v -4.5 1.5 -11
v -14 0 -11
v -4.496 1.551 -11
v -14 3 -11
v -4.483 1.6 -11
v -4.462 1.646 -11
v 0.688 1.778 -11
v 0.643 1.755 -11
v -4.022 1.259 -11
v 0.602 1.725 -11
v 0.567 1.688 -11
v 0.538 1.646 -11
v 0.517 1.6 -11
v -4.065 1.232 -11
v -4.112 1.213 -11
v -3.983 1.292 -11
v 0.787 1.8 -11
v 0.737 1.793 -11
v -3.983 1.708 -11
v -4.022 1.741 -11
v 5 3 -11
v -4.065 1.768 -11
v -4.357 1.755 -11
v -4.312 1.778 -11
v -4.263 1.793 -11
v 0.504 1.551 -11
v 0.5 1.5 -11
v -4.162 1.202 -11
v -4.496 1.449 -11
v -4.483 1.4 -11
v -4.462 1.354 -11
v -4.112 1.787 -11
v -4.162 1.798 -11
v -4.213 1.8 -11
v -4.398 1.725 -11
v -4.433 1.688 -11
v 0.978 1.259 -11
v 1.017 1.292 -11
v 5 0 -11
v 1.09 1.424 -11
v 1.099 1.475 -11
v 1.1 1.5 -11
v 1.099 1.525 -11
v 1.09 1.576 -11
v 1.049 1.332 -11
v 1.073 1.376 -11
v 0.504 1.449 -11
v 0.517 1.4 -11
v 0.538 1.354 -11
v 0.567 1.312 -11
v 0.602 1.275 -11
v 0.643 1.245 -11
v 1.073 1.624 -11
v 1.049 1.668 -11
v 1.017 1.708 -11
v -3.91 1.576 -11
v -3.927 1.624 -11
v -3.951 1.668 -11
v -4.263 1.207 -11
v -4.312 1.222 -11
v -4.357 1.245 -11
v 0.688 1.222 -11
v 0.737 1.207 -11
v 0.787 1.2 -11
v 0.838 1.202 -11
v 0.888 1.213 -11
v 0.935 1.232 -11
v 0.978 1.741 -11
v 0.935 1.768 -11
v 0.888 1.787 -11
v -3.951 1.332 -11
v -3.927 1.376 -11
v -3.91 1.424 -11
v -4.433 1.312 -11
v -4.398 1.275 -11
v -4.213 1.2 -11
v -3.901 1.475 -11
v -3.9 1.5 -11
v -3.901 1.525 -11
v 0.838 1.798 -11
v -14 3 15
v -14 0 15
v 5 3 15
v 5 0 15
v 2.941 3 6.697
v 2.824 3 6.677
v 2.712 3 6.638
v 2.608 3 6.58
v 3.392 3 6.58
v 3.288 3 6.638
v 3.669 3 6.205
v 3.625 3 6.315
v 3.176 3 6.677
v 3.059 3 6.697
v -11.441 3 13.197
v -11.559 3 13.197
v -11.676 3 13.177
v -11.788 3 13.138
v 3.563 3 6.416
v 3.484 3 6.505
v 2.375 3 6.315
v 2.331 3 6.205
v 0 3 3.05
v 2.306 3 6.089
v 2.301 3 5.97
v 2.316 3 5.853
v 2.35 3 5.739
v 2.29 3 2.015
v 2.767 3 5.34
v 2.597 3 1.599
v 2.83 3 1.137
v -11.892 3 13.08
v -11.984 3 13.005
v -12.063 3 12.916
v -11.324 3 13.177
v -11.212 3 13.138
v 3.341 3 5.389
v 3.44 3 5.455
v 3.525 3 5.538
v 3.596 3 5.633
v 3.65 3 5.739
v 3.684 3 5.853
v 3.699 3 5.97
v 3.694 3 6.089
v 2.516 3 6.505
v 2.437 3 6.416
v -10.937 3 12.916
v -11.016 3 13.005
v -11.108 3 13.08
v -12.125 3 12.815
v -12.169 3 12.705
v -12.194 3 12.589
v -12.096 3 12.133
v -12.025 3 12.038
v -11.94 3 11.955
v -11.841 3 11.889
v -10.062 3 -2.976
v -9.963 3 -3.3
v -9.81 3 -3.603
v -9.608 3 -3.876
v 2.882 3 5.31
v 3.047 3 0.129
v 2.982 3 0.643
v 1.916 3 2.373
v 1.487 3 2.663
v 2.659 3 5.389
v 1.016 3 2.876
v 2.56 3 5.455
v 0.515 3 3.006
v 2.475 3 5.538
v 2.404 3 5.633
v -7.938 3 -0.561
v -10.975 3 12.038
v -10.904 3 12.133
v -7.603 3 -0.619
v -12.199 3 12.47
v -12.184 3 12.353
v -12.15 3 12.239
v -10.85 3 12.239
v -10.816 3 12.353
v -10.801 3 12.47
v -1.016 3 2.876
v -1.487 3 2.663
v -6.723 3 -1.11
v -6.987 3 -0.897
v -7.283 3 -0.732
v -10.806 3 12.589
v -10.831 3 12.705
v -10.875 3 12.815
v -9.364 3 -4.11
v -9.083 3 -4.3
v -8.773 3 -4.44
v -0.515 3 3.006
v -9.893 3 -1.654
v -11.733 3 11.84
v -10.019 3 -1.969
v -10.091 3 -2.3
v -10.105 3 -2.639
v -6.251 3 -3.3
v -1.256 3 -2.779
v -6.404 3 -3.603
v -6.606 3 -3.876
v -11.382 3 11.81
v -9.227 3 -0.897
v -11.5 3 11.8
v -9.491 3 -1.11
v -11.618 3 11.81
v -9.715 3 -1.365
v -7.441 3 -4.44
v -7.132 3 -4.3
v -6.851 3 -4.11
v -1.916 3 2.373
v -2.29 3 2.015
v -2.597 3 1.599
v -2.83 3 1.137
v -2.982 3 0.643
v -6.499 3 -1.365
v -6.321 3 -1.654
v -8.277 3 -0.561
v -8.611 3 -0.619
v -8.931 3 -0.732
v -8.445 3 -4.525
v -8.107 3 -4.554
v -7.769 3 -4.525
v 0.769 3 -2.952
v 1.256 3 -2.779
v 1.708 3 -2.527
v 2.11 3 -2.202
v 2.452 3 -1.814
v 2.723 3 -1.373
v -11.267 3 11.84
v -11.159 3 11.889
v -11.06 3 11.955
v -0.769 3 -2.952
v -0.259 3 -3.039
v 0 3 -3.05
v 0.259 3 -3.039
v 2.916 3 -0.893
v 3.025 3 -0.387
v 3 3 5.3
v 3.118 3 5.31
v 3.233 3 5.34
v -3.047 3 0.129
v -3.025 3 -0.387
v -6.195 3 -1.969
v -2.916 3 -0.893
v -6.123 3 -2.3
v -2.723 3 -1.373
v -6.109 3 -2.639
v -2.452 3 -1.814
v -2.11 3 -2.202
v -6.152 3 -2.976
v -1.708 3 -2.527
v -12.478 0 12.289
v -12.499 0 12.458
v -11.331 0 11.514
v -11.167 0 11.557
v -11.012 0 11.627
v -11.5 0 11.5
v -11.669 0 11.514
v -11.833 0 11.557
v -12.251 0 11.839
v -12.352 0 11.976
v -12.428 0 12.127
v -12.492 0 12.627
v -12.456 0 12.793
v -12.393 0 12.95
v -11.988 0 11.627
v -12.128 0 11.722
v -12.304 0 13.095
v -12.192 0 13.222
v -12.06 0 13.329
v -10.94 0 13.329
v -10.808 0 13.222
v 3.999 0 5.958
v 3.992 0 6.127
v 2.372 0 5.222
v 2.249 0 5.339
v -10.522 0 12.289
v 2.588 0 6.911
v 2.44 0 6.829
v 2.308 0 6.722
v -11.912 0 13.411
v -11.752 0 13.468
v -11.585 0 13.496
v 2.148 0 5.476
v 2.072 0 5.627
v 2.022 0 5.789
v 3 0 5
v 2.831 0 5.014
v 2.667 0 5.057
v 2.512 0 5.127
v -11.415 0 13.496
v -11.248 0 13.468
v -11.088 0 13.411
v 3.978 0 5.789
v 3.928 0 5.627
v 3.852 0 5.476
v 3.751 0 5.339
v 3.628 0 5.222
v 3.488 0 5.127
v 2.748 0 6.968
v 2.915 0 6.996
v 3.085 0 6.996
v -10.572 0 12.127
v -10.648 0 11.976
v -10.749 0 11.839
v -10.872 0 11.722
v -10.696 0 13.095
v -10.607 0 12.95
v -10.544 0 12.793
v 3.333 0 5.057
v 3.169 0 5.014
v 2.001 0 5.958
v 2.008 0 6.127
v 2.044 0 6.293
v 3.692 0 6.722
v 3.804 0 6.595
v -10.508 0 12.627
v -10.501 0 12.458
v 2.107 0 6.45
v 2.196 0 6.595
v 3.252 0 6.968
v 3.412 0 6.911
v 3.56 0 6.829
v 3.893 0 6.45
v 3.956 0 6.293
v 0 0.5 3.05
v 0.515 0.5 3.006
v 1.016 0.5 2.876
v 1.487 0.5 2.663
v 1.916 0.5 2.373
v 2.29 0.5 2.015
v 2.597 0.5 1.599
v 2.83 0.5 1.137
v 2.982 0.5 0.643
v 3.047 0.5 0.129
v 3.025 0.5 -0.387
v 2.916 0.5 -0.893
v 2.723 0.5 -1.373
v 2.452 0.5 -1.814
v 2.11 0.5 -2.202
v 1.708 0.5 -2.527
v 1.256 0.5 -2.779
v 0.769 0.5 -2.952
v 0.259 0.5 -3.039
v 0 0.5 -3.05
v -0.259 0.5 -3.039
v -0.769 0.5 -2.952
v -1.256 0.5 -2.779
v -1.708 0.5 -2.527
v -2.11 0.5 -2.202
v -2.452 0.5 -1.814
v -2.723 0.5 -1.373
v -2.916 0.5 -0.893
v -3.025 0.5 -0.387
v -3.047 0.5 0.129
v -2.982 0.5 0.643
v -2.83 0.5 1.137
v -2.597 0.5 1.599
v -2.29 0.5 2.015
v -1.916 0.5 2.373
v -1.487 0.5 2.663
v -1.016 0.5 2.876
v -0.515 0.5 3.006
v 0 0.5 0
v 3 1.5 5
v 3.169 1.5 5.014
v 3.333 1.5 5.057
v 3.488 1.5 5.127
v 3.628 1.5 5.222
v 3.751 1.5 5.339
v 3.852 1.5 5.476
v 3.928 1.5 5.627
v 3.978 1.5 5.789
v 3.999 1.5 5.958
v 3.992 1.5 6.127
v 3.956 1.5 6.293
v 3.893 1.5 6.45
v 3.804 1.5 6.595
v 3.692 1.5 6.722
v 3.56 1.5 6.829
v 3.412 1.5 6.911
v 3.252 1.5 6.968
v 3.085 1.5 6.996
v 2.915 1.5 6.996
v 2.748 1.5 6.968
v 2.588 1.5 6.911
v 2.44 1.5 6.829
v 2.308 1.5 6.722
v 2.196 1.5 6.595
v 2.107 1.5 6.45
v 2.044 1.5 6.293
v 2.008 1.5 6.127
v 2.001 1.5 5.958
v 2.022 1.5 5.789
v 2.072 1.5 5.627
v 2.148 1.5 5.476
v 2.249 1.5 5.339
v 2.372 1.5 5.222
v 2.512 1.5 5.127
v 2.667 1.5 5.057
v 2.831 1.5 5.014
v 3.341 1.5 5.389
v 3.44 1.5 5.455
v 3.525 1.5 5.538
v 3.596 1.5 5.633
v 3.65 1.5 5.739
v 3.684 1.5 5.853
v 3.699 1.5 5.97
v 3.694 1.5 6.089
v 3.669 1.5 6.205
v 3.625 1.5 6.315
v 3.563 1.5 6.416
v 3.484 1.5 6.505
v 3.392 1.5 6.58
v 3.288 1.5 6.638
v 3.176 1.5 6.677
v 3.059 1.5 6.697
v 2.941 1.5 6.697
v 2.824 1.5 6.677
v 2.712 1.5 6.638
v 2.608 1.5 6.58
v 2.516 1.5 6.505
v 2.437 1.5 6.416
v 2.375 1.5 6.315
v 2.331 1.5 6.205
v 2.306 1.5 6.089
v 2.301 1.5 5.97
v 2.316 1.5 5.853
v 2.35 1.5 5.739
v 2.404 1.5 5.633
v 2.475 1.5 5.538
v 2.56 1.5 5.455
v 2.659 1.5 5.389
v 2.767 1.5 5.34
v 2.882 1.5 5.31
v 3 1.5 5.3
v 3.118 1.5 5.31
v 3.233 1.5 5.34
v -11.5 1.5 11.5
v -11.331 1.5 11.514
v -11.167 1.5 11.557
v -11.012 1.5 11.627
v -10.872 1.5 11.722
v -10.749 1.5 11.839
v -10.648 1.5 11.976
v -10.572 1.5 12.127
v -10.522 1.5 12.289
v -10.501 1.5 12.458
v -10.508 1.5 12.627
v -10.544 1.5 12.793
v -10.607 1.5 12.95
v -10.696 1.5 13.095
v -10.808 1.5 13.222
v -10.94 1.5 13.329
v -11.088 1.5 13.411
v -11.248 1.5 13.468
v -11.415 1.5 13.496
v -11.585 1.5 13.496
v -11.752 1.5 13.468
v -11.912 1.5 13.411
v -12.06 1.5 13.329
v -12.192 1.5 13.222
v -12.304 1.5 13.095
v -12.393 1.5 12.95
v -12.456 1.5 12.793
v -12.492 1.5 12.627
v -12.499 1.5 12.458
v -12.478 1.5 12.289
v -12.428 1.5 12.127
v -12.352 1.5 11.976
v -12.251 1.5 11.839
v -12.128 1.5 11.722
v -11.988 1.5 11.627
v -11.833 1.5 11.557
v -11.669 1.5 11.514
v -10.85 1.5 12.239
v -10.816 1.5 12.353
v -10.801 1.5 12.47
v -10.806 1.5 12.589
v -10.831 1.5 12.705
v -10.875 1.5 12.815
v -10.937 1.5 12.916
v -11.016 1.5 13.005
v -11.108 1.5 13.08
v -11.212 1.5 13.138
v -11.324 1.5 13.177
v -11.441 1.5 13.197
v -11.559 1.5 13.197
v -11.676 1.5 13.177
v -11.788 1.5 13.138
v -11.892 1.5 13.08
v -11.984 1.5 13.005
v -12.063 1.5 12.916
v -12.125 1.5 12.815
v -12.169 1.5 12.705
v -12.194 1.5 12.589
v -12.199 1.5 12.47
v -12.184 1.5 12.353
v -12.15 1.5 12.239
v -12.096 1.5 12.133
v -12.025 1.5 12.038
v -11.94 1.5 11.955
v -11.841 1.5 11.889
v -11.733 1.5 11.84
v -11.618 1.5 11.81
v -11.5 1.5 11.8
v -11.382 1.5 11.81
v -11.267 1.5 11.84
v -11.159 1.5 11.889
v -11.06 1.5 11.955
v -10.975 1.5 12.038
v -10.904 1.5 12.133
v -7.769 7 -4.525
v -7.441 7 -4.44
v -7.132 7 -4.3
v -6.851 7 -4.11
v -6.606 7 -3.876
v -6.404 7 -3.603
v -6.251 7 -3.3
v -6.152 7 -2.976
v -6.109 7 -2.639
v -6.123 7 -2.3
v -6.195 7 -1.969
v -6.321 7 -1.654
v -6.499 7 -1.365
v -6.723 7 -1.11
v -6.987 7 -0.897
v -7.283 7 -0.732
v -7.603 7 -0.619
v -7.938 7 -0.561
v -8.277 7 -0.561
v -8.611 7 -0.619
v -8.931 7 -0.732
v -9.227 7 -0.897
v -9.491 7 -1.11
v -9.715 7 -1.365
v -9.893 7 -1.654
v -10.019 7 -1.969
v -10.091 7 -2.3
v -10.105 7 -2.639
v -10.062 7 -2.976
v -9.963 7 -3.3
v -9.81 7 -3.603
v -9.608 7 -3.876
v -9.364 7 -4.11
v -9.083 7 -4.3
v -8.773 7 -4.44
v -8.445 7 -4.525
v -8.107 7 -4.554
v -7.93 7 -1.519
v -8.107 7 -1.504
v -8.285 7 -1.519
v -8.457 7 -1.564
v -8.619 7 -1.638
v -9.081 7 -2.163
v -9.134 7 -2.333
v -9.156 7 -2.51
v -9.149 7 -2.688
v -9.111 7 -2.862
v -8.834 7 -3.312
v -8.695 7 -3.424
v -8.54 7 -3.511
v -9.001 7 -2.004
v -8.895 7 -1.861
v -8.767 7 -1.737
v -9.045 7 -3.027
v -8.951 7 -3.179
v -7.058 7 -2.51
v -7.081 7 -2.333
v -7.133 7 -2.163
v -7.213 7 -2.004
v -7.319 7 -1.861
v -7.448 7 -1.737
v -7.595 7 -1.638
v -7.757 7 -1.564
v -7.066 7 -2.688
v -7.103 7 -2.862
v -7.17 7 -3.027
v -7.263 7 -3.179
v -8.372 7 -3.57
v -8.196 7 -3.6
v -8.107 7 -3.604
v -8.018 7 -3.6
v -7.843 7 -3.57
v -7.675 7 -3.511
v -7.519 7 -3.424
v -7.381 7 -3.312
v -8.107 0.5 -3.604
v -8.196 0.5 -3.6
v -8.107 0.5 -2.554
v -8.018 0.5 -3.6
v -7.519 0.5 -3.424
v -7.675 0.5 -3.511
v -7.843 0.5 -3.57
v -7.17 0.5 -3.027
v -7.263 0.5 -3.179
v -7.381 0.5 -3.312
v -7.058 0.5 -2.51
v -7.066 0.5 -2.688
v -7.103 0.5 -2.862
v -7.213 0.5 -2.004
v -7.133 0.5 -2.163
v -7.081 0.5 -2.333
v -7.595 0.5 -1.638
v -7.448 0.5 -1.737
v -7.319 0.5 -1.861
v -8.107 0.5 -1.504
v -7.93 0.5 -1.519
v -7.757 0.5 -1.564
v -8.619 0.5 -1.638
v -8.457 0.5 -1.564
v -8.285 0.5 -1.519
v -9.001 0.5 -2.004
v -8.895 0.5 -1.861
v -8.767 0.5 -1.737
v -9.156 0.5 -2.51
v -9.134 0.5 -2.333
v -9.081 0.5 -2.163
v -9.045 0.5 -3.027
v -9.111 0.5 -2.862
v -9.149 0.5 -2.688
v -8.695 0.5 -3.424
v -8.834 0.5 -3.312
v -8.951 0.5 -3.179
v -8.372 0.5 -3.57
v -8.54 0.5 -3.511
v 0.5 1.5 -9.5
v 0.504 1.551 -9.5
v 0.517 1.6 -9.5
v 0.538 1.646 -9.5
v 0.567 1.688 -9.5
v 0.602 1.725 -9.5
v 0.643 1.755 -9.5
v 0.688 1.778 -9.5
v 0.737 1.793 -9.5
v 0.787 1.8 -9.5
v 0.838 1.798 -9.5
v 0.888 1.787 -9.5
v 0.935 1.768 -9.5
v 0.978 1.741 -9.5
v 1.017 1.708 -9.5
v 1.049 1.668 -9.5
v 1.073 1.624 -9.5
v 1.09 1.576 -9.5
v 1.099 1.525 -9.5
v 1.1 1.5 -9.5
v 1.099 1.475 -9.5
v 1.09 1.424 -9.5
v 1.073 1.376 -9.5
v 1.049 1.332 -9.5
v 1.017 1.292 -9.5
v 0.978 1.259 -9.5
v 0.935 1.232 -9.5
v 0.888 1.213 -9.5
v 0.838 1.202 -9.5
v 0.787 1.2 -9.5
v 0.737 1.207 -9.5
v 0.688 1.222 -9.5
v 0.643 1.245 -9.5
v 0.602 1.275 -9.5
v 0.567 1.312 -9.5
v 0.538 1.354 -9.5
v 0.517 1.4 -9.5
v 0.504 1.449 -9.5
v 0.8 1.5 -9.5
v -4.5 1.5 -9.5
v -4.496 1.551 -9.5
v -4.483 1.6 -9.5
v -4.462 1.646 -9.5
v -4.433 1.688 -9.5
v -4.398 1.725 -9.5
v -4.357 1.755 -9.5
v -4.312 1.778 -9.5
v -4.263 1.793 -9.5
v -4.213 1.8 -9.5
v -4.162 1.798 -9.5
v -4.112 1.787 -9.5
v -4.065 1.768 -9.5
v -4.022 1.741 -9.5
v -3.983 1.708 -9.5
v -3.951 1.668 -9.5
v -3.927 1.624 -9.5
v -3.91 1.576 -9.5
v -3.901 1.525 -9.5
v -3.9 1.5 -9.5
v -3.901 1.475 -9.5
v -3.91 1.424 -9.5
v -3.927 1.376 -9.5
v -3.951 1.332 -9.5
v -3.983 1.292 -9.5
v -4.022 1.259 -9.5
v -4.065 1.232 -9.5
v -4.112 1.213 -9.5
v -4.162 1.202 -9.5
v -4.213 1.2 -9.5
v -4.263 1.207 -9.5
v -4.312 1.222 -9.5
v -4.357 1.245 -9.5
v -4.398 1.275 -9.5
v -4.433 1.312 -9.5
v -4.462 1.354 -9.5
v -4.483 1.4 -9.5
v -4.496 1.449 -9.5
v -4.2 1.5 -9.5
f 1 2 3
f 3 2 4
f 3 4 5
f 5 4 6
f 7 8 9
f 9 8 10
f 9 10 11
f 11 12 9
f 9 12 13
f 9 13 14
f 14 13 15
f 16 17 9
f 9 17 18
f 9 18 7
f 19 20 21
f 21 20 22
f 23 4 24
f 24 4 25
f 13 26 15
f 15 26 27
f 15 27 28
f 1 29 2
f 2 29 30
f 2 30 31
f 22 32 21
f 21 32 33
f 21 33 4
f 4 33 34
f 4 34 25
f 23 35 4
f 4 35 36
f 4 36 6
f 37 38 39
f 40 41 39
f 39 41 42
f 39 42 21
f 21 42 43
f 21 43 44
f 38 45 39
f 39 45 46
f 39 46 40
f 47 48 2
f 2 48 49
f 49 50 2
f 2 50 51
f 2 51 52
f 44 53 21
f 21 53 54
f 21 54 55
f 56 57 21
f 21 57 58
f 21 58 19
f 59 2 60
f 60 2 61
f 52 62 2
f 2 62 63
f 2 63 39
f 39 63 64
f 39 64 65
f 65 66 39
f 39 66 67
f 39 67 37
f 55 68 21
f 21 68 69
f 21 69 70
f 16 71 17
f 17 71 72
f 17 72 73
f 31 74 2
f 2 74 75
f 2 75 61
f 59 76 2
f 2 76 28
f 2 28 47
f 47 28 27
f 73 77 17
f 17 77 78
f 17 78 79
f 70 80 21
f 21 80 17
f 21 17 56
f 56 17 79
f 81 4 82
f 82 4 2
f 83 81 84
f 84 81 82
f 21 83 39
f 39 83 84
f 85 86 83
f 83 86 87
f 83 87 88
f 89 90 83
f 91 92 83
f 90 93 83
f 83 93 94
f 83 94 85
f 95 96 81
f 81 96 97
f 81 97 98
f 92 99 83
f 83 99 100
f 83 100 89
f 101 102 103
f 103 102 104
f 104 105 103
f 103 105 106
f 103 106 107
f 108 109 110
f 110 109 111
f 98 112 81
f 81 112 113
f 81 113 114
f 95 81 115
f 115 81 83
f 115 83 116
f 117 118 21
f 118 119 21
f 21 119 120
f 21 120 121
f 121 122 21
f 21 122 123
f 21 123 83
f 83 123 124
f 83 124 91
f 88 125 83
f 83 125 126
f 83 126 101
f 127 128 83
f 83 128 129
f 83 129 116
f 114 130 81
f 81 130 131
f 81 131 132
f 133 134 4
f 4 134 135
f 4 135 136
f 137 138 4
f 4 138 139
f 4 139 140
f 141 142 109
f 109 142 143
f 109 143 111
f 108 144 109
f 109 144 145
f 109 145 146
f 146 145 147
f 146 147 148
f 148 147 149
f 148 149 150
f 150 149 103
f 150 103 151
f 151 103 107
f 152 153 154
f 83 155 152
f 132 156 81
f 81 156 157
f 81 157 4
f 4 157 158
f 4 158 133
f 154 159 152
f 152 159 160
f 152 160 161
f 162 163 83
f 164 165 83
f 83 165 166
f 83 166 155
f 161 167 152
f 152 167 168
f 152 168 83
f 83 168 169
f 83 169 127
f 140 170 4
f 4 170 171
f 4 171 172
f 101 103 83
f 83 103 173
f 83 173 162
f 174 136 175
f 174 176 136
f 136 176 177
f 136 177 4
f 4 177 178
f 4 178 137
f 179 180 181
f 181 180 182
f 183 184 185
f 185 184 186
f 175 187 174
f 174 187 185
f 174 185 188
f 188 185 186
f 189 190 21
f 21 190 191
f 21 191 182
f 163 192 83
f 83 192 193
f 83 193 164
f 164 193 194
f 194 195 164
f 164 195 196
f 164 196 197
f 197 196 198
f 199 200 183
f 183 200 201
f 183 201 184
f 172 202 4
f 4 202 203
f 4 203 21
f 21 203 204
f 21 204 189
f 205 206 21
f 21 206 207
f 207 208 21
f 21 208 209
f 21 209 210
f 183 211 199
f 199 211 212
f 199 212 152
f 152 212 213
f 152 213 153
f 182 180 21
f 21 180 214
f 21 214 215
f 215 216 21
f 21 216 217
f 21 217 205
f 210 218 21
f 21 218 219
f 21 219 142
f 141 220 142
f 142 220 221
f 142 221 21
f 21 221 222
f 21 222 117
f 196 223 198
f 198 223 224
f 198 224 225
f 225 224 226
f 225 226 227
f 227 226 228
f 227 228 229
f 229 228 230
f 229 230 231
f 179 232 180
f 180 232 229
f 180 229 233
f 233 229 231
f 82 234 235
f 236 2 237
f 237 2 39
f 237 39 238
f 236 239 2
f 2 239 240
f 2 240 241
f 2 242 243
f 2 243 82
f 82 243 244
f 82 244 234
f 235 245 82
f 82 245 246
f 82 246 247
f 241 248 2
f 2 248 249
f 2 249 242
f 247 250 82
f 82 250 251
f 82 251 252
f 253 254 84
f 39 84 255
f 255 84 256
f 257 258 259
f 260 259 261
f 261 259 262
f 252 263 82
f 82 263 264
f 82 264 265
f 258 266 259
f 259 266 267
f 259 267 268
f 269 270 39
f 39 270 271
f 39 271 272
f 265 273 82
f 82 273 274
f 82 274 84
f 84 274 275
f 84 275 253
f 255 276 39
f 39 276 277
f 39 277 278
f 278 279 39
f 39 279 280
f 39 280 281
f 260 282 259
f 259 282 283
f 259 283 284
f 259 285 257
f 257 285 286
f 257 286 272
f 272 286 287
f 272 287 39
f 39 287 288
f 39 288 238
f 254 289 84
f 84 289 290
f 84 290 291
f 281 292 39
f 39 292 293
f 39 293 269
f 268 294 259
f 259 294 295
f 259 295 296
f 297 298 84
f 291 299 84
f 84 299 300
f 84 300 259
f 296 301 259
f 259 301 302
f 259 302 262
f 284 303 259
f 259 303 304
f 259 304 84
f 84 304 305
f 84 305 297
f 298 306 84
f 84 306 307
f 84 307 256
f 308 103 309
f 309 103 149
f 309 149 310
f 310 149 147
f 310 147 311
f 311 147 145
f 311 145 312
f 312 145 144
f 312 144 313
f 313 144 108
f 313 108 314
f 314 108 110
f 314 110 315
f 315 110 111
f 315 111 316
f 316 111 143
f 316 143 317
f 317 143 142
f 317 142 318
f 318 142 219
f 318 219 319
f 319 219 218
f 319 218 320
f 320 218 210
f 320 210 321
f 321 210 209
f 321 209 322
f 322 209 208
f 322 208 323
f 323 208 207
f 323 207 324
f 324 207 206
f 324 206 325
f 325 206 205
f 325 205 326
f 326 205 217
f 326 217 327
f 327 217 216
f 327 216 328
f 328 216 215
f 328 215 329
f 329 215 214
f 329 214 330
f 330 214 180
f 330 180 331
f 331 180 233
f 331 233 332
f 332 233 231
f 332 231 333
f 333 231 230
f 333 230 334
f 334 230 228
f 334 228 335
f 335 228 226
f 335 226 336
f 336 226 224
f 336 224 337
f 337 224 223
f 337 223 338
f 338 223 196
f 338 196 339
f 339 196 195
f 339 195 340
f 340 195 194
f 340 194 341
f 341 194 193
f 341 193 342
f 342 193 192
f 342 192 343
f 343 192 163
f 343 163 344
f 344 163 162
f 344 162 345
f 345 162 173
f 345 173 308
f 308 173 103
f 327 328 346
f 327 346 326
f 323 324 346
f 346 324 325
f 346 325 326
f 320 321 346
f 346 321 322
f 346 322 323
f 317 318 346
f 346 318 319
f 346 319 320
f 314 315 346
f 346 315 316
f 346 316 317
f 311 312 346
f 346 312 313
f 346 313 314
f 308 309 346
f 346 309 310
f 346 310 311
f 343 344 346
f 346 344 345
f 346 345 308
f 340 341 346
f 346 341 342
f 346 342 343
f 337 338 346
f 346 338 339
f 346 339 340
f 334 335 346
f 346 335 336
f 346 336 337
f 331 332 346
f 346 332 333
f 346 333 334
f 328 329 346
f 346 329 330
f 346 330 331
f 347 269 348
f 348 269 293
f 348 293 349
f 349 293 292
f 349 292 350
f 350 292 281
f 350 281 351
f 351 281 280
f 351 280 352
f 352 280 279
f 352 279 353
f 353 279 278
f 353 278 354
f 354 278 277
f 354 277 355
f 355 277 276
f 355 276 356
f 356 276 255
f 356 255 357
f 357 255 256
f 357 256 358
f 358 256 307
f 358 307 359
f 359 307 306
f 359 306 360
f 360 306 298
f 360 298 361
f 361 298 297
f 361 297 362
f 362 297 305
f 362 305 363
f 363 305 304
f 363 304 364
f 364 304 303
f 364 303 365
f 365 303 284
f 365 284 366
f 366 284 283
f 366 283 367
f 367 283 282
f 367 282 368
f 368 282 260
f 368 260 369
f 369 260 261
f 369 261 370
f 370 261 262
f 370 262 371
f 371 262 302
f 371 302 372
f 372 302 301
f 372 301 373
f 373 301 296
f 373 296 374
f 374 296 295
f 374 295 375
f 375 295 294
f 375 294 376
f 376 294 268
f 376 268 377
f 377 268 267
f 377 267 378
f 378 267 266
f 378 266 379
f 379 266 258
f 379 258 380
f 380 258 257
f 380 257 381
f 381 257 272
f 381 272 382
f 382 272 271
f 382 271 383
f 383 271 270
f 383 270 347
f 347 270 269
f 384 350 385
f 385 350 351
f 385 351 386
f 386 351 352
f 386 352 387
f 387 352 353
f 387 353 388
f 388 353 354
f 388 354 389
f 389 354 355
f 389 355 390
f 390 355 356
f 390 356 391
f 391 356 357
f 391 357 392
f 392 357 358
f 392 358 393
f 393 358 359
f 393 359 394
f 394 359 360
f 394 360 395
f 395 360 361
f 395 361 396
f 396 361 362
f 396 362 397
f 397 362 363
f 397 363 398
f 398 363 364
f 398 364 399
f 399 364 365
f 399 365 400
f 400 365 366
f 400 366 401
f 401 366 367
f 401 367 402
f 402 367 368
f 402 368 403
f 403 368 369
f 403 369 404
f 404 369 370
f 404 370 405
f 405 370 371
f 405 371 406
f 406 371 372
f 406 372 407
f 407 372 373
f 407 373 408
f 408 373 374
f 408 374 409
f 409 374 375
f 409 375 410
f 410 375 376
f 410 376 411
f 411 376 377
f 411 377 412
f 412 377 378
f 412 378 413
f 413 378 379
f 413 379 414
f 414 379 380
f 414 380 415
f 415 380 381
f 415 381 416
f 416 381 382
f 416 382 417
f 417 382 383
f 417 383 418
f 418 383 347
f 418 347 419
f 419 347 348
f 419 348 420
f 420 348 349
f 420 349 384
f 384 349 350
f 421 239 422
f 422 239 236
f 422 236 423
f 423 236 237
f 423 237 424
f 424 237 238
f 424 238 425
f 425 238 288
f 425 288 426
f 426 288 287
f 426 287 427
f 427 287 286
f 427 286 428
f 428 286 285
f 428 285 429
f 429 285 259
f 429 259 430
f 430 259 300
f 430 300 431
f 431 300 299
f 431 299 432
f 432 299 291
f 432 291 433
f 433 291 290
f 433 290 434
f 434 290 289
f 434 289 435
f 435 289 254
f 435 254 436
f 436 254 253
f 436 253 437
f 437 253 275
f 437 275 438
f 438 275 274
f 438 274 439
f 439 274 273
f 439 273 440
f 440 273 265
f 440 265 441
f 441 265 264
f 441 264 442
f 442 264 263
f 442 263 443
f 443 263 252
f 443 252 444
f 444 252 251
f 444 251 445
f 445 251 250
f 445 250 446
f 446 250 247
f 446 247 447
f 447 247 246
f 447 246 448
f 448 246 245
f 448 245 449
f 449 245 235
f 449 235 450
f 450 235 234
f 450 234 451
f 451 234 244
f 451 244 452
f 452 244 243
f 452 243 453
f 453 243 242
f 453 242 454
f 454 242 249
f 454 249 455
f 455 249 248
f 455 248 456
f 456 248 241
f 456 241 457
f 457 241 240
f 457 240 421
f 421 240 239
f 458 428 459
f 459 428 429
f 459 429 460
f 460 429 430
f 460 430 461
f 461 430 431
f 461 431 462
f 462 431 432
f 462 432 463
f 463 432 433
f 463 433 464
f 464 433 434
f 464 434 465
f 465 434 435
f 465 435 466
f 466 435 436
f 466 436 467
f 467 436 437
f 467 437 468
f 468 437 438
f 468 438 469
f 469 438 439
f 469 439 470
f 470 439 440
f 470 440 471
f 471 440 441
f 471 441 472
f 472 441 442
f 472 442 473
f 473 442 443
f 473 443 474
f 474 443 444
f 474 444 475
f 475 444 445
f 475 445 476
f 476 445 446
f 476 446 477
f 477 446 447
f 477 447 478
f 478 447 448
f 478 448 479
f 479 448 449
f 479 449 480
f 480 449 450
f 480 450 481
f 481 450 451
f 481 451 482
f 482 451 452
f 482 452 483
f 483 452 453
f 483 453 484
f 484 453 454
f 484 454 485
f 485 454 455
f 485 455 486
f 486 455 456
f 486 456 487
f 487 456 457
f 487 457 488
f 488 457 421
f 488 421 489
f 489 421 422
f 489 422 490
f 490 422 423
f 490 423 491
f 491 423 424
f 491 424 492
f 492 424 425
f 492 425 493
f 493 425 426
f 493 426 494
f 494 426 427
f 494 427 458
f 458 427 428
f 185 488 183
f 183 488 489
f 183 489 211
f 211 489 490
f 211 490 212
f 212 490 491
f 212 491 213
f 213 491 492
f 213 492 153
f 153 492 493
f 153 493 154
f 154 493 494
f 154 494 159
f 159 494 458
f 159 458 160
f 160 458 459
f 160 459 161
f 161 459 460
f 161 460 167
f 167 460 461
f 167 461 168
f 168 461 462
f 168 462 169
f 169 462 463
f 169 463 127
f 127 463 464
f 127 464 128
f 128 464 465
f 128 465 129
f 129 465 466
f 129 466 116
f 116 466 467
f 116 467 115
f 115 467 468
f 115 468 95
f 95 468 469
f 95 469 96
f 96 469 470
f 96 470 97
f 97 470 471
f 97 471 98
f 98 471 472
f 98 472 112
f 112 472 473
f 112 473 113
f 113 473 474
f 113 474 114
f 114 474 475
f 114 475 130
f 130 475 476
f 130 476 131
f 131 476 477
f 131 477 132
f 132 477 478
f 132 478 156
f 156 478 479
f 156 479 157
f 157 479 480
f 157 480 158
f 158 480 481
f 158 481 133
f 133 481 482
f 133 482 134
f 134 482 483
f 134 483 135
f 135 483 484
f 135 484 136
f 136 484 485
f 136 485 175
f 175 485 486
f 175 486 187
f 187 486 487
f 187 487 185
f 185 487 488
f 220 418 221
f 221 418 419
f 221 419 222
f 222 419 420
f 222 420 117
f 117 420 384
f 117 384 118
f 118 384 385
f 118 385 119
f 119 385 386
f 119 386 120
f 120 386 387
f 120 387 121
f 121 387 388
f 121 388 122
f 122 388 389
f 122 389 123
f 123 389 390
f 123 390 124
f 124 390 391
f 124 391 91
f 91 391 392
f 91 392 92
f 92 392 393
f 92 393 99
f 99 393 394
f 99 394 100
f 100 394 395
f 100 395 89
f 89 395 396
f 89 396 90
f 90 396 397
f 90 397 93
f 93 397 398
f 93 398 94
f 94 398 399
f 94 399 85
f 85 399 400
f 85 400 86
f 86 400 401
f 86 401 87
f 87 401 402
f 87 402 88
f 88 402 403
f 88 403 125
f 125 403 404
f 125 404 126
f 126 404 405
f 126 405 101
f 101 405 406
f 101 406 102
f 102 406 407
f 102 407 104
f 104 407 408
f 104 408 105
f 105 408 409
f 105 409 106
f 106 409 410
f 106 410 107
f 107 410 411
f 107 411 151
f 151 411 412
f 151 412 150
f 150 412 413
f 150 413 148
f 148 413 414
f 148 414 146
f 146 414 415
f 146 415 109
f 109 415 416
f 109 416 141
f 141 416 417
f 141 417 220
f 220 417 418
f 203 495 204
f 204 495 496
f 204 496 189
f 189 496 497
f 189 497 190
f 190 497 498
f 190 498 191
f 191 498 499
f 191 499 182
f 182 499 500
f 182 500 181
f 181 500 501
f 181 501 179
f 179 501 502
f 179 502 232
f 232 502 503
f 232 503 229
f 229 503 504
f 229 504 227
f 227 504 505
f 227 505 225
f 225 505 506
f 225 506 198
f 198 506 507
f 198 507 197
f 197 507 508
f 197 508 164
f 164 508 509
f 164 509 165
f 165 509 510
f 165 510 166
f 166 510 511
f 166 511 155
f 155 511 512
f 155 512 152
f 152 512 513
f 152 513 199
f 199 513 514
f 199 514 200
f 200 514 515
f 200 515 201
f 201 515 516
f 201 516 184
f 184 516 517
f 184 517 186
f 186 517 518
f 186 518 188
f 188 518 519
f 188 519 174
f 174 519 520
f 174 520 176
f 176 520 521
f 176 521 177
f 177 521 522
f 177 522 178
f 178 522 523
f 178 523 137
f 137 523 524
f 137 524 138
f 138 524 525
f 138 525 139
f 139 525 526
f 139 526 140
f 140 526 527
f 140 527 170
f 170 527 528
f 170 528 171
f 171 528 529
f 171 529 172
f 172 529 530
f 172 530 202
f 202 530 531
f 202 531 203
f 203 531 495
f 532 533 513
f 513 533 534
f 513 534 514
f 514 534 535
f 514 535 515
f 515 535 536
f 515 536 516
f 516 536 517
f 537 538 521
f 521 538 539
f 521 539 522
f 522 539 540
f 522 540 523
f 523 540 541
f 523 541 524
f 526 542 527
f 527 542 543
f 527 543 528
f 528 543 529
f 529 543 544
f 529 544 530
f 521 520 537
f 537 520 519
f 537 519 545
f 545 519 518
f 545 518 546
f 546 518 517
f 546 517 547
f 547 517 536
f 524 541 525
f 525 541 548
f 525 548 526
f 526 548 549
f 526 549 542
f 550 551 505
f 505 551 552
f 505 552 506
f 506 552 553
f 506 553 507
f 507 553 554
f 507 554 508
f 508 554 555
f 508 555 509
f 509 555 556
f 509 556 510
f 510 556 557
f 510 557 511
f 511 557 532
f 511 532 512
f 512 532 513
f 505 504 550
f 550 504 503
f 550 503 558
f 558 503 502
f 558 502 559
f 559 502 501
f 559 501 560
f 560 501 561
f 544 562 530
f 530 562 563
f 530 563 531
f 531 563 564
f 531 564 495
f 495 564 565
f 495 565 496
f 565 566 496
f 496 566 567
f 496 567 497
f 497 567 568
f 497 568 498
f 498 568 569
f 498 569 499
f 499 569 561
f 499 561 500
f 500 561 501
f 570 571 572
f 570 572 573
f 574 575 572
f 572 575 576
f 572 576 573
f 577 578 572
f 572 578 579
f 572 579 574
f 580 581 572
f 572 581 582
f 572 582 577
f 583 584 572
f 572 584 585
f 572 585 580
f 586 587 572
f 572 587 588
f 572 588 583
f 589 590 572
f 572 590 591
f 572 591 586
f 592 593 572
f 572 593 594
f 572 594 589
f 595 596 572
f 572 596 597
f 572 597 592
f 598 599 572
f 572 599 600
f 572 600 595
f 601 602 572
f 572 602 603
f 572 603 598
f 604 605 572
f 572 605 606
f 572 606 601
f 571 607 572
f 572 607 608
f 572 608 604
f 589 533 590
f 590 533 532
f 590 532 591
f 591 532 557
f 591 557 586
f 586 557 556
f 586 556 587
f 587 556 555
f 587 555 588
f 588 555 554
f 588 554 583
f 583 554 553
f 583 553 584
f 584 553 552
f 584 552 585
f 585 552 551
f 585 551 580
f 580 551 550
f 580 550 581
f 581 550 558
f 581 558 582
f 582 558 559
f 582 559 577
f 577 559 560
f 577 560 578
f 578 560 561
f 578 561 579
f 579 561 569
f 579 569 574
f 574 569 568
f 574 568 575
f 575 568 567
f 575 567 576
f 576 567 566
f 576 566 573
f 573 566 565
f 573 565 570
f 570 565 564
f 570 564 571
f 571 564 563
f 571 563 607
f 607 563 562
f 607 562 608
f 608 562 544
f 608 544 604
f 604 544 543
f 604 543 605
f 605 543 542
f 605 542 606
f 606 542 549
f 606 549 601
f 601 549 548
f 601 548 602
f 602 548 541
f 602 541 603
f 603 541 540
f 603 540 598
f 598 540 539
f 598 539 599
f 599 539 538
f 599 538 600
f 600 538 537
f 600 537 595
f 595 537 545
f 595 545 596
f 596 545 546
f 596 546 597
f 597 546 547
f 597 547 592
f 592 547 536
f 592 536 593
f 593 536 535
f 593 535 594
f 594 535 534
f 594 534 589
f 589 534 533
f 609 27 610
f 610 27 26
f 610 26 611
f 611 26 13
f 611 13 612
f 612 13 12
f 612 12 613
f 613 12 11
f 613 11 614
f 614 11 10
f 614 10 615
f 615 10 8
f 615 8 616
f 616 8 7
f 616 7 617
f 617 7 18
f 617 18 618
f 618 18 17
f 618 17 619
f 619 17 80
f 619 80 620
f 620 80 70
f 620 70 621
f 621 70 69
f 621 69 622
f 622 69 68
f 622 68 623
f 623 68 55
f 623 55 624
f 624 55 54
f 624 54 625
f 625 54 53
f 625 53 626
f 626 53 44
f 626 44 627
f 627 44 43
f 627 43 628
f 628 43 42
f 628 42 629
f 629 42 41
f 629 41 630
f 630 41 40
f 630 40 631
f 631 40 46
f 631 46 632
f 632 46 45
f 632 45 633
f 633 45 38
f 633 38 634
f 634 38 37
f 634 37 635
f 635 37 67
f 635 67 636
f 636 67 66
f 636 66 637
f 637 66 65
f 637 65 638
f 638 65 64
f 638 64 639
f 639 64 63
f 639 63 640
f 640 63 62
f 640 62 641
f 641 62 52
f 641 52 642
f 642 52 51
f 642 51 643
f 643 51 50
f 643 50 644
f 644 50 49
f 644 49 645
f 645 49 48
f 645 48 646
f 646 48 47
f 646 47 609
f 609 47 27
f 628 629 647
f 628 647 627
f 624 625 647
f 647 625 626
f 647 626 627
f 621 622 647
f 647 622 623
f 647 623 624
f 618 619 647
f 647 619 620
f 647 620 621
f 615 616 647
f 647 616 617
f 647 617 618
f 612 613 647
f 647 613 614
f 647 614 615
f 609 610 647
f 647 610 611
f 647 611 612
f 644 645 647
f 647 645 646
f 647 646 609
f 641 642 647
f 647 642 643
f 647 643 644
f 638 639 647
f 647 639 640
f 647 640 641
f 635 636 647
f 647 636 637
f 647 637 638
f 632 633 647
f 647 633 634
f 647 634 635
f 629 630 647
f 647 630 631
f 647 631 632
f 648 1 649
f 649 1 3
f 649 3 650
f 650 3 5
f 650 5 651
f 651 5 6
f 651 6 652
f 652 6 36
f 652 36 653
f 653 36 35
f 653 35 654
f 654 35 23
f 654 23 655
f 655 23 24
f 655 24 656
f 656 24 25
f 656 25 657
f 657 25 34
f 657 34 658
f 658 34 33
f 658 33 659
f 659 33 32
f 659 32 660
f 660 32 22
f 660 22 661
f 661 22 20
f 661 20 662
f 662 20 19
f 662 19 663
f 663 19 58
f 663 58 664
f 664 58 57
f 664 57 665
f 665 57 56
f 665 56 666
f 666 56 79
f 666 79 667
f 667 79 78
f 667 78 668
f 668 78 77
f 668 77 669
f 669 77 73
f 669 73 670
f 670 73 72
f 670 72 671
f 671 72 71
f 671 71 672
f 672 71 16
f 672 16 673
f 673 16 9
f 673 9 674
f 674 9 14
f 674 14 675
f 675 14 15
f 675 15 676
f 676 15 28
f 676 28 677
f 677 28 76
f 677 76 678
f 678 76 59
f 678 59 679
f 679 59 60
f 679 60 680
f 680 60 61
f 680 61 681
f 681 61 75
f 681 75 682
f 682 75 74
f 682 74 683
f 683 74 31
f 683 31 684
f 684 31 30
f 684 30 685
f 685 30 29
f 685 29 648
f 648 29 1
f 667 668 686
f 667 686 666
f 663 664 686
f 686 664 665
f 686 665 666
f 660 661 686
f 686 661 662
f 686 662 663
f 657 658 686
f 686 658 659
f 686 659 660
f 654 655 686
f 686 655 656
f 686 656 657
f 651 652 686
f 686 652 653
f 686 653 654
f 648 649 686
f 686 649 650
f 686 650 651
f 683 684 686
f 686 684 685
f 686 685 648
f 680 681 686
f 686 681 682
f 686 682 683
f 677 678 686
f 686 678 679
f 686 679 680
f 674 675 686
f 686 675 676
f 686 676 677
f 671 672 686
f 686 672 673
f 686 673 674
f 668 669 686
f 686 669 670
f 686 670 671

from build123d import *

# Parameters (mm, degrees)
SKETCH_1_W          = 19
SKETCH_1_H          = 26
EXTRUDE_1_DEPTH     = 3
CUT_EXTRUDE_START   = 3
SKETCH_1_3_R        = 3.05
SKETCH_1_3_R_2      = 1.05
CUT_EXTRUDE_1_DEPTH = 2.5
SKETCH_2_R          = 1
CUT_EXTRUDE_2_DEPTH = 1.5
SKETCH_2_3_R        = 0.7
CUT_EXTRUDE_3_DEPTH = 21.736441353
EXTRUDE_START       = 3
SKETCH_1_6_R        = 2
EXTRUDE_2_DEPTH     = 4
CUT_EXTRUDE_START_2 = 7
SKETCH_1_7_R        = 1.05
CUT_EXTRUDE_5_DEPTH = 4
SKETCH_3_R          = 0.3
CUT_EXTRUDE_6_DEPTH = 1.5


with BuildPart() as part:
    # 草图1 → 凸台-拉伸1 (new body)
    with BuildSketch(Plane(origin=(0, 0, 0), x_dir=(1, 0, 0), z_dir=(0, 1, 0))):
        with Locations((-4.5, -2)):
            Rectangle(SKETCH_1_W, SKETCH_1_H)
    extrude(amount=EXTRUDE_1_DEPTH)

    # 草图1<3> → 切除-拉伸1 (cut)
    with BuildSketch(Plane(origin=(0, 0, 0), x_dir=(1, 0, 0), z_dir=(0, 1, 0)).offset(CUT_EXTRUDE_START)):
        with Locations(Location((0, 0, 0), (0, 0, 90))):
            Circle(SKETCH_1_3_R)
        with Locations(Location((-8.107149516, 2.554237014, 0), (0, 0, 90))):
            Circle(SKETCH_1_3_R_2)
    extrude(amount=-CUT_EXTRUDE_1_DEPTH, mode=Mode.SUBTRACT)

    # 草图2 → 切除-拉伸2 (cut)
    with BuildSketch(Plane.XZ):
        with Locations(Location((-11.5, 12.5, 0), (0, 0, 270))):
            Circle(SKETCH_2_R)
        with Locations(Location((3, 6, 0), (0, 0, 270))):
            Circle(SKETCH_2_R)
    extrude(amount=-CUT_EXTRUDE_2_DEPTH, mode=Mode.SUBTRACT)

    # 草图2<3> → 切除-拉伸3 (cut, through all)
    with BuildSketch(Plane.XZ):
        with Locations(Location((-11.5, 12.5, 0), (0, 0, 270))):
            Circle(SKETCH_2_3_R)
        with Locations(Location((3, 6, 0), (0, 0, 270))):
            Circle(SKETCH_2_3_R)
    extrude(amount=-CUT_EXTRUDE_3_DEPTH, mode=Mode.SUBTRACT)

    # 草图1<6> → 凸台-拉伸2 (add)
    with BuildSketch(Plane(origin=(0, 0, 0), x_dir=(1, 0, 0), z_dir=(0, 1, 0)).offset(EXTRUDE_START)):
        with Locations(Location((-8.107149516, 2.554237014, 0), (0, 0, 90))):
            Circle(SKETCH_1_6_R)
    extrude(amount=EXTRUDE_2_DEPTH)

    # 草图1<7> → 切除-拉伸5 (cut)
    with BuildSketch(Plane(origin=(0, 0, 0), x_dir=(1, 0, 0), z_dir=(0, 1, 0)).offset(CUT_EXTRUDE_START_2)):
        with Locations(Location((-8.107149516, 2.554237014, 0), (0, 0, 90))):
            Circle(SKETCH_1_7_R)
    extrude(amount=-CUT_EXTRUDE_5_DEPTH, mode=Mode.SUBTRACT)

    # 草图3 → 切除-拉伸6 (cut)
    with BuildSketch(Plane.XY.offset(-11)):
        with Locations((0.8, 1.5)):
            Circle(SKETCH_3_R)
        with Locations((-4.2, 1.5)):
            Circle(SKETCH_3_R)
    extrude(amount=CUT_EXTRUDE_6_DEPTH, mode=Mode.SUBTRACT)


solid = part.part
